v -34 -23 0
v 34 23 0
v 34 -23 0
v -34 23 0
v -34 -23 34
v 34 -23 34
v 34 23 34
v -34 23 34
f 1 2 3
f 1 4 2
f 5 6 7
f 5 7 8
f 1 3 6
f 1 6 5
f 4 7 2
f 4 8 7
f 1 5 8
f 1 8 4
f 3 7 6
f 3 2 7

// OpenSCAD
// Gemini 4 Argon Parametric OpenSCAD — PRT-04: Sliding Top Canvas Clamp Jaw
$fn = 64;
translate([-34.00, -23.00, 0])
  cube([68, 46, 34]);
